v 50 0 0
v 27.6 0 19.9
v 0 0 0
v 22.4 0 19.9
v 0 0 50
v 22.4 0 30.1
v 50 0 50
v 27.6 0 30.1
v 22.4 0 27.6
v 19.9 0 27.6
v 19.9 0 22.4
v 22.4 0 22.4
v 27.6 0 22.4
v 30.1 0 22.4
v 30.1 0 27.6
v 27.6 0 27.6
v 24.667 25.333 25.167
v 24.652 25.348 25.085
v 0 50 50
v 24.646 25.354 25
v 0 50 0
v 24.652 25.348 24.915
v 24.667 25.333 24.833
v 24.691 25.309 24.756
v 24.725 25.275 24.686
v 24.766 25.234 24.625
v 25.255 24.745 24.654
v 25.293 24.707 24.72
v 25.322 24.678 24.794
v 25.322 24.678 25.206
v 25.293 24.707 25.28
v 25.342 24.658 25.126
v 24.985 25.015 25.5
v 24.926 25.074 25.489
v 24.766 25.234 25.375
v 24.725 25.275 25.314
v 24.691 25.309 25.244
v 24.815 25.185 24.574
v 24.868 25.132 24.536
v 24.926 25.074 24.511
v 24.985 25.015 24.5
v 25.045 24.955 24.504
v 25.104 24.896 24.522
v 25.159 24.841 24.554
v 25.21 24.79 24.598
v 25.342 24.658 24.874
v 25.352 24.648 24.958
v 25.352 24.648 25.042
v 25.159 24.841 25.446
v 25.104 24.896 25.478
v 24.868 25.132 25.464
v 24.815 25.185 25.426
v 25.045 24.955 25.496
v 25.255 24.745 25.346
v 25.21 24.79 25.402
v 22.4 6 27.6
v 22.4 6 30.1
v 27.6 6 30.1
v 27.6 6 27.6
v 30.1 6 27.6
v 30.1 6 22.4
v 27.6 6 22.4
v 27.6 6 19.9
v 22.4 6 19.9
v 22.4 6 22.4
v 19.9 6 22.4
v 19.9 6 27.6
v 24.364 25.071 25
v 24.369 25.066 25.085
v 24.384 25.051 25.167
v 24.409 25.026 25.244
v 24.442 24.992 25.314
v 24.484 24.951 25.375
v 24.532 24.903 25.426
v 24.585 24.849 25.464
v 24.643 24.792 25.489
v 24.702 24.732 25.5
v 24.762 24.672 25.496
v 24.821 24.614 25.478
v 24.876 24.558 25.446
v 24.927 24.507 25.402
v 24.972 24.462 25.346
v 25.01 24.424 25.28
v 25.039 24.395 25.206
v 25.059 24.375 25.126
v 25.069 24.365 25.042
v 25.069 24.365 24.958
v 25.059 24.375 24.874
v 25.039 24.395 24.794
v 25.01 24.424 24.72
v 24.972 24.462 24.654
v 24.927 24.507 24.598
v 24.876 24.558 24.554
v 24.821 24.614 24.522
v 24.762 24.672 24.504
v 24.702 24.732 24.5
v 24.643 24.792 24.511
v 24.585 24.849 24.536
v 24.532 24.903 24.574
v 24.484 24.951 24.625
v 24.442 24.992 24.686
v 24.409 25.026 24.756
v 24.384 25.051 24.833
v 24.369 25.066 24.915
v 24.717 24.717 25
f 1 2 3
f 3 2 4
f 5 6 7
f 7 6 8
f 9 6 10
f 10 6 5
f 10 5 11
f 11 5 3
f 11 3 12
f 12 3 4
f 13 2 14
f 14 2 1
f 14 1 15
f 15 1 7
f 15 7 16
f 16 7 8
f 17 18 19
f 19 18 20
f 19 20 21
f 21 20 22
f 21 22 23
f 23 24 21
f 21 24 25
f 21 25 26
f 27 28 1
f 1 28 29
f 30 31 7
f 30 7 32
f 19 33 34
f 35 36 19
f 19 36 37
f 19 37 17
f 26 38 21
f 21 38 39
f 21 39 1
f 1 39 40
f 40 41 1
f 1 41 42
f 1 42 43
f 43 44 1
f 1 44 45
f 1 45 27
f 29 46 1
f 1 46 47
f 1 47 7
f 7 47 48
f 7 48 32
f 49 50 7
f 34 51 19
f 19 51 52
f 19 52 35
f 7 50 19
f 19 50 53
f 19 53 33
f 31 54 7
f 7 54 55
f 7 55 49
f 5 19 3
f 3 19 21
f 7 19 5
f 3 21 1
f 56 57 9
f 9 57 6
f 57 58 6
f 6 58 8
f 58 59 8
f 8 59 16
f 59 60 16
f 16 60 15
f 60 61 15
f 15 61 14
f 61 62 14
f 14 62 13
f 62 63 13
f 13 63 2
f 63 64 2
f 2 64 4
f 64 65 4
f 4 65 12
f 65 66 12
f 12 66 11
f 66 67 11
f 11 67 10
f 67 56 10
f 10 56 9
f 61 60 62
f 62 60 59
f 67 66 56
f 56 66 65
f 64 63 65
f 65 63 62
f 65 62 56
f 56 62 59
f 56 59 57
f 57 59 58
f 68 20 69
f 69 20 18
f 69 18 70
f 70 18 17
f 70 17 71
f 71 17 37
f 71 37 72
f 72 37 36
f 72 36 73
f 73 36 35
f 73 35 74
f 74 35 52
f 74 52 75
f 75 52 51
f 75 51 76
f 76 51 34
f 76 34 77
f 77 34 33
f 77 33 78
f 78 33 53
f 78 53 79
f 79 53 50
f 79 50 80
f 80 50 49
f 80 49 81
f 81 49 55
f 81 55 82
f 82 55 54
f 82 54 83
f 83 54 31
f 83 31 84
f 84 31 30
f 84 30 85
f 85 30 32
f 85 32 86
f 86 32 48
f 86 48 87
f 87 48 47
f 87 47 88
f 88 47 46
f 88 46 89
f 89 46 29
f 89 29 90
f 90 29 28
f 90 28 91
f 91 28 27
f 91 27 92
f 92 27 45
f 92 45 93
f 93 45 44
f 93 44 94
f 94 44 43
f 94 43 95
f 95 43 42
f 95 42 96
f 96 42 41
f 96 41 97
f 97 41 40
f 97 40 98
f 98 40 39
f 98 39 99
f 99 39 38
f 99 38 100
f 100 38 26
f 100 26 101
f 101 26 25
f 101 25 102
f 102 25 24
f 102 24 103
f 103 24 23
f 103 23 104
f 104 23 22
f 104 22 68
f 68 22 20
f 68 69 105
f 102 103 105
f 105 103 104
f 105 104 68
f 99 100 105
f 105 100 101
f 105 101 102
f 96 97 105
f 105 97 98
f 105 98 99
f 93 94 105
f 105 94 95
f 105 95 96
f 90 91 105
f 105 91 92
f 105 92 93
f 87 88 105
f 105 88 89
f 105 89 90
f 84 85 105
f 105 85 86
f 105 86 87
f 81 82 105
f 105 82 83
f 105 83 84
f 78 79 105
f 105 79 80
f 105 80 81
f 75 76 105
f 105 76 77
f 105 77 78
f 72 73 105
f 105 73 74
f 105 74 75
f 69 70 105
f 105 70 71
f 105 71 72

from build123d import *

# Parameters (mm, degrees)
RESSALTO_EXTRUS_O1_DEPTH = 50
ESBO_O2_W                = 5.2
ESBO_O2_H                = 2.5
ESBO_O2_W_2              = 2.5
ESBO_O2_H_2              = 5.2
CORTE_EXTRUS_O1_DEPTH    = 6
ESBO_O3_R                = 0.5
CORTE_EXTRUS_O2_DEPTH    = 0.4


with BuildPart() as part:
    # Esboço1 → Ressalto-extrusão1 (new body)
    with BuildSketch(Plane.XY):
        Polygon((0, 0), (0, 50), (50, 0), align=None)
    extrude(amount=RESSALTO_EXTRUS_O1_DEPTH)

    # Esboço2 → Corte-extrusão1 (cut)
    with BuildSketch(Plane.XZ):
        with Locations((25, 28.85)):
            Rectangle(ESBO_O2_W, ESBO_O2_H)
        with Locations((21.15, 25)):
            Rectangle(ESBO_O2_W_2, ESBO_O2_H_2)
        with Locations((25, 25)):
            Rectangle(ESBO_O2_W, ESBO_O2_H_2)
        with Locations((28.85, 25)):
            Rectangle(ESBO_O2_W_2, ESBO_O2_H_2)
        with Locations((25, 21.15)):
            Rectangle(ESBO_O2_W, ESBO_O2_H)
    extrude(amount=-CORTE_EXTRUS_O1_DEPTH, mode=Mode.SUBTRACT)

    # Esboço3 → Corte-extrusão2 (cut)
    with BuildSketch(Plane(origin=(25, 25, 0), x_dir=(0, 0, -1), z_dir=(0.7071067811865487, 0.7071067811865465, 0))):
        with Locations(Location((-25, 0, 0), (0, 0, 90))):
            Circle(ESBO_O3_R)
    extrude(amount=-CORTE_EXTRUS_O2_DEPTH, mode=Mode.SUBTRACT)


solid = part.part
